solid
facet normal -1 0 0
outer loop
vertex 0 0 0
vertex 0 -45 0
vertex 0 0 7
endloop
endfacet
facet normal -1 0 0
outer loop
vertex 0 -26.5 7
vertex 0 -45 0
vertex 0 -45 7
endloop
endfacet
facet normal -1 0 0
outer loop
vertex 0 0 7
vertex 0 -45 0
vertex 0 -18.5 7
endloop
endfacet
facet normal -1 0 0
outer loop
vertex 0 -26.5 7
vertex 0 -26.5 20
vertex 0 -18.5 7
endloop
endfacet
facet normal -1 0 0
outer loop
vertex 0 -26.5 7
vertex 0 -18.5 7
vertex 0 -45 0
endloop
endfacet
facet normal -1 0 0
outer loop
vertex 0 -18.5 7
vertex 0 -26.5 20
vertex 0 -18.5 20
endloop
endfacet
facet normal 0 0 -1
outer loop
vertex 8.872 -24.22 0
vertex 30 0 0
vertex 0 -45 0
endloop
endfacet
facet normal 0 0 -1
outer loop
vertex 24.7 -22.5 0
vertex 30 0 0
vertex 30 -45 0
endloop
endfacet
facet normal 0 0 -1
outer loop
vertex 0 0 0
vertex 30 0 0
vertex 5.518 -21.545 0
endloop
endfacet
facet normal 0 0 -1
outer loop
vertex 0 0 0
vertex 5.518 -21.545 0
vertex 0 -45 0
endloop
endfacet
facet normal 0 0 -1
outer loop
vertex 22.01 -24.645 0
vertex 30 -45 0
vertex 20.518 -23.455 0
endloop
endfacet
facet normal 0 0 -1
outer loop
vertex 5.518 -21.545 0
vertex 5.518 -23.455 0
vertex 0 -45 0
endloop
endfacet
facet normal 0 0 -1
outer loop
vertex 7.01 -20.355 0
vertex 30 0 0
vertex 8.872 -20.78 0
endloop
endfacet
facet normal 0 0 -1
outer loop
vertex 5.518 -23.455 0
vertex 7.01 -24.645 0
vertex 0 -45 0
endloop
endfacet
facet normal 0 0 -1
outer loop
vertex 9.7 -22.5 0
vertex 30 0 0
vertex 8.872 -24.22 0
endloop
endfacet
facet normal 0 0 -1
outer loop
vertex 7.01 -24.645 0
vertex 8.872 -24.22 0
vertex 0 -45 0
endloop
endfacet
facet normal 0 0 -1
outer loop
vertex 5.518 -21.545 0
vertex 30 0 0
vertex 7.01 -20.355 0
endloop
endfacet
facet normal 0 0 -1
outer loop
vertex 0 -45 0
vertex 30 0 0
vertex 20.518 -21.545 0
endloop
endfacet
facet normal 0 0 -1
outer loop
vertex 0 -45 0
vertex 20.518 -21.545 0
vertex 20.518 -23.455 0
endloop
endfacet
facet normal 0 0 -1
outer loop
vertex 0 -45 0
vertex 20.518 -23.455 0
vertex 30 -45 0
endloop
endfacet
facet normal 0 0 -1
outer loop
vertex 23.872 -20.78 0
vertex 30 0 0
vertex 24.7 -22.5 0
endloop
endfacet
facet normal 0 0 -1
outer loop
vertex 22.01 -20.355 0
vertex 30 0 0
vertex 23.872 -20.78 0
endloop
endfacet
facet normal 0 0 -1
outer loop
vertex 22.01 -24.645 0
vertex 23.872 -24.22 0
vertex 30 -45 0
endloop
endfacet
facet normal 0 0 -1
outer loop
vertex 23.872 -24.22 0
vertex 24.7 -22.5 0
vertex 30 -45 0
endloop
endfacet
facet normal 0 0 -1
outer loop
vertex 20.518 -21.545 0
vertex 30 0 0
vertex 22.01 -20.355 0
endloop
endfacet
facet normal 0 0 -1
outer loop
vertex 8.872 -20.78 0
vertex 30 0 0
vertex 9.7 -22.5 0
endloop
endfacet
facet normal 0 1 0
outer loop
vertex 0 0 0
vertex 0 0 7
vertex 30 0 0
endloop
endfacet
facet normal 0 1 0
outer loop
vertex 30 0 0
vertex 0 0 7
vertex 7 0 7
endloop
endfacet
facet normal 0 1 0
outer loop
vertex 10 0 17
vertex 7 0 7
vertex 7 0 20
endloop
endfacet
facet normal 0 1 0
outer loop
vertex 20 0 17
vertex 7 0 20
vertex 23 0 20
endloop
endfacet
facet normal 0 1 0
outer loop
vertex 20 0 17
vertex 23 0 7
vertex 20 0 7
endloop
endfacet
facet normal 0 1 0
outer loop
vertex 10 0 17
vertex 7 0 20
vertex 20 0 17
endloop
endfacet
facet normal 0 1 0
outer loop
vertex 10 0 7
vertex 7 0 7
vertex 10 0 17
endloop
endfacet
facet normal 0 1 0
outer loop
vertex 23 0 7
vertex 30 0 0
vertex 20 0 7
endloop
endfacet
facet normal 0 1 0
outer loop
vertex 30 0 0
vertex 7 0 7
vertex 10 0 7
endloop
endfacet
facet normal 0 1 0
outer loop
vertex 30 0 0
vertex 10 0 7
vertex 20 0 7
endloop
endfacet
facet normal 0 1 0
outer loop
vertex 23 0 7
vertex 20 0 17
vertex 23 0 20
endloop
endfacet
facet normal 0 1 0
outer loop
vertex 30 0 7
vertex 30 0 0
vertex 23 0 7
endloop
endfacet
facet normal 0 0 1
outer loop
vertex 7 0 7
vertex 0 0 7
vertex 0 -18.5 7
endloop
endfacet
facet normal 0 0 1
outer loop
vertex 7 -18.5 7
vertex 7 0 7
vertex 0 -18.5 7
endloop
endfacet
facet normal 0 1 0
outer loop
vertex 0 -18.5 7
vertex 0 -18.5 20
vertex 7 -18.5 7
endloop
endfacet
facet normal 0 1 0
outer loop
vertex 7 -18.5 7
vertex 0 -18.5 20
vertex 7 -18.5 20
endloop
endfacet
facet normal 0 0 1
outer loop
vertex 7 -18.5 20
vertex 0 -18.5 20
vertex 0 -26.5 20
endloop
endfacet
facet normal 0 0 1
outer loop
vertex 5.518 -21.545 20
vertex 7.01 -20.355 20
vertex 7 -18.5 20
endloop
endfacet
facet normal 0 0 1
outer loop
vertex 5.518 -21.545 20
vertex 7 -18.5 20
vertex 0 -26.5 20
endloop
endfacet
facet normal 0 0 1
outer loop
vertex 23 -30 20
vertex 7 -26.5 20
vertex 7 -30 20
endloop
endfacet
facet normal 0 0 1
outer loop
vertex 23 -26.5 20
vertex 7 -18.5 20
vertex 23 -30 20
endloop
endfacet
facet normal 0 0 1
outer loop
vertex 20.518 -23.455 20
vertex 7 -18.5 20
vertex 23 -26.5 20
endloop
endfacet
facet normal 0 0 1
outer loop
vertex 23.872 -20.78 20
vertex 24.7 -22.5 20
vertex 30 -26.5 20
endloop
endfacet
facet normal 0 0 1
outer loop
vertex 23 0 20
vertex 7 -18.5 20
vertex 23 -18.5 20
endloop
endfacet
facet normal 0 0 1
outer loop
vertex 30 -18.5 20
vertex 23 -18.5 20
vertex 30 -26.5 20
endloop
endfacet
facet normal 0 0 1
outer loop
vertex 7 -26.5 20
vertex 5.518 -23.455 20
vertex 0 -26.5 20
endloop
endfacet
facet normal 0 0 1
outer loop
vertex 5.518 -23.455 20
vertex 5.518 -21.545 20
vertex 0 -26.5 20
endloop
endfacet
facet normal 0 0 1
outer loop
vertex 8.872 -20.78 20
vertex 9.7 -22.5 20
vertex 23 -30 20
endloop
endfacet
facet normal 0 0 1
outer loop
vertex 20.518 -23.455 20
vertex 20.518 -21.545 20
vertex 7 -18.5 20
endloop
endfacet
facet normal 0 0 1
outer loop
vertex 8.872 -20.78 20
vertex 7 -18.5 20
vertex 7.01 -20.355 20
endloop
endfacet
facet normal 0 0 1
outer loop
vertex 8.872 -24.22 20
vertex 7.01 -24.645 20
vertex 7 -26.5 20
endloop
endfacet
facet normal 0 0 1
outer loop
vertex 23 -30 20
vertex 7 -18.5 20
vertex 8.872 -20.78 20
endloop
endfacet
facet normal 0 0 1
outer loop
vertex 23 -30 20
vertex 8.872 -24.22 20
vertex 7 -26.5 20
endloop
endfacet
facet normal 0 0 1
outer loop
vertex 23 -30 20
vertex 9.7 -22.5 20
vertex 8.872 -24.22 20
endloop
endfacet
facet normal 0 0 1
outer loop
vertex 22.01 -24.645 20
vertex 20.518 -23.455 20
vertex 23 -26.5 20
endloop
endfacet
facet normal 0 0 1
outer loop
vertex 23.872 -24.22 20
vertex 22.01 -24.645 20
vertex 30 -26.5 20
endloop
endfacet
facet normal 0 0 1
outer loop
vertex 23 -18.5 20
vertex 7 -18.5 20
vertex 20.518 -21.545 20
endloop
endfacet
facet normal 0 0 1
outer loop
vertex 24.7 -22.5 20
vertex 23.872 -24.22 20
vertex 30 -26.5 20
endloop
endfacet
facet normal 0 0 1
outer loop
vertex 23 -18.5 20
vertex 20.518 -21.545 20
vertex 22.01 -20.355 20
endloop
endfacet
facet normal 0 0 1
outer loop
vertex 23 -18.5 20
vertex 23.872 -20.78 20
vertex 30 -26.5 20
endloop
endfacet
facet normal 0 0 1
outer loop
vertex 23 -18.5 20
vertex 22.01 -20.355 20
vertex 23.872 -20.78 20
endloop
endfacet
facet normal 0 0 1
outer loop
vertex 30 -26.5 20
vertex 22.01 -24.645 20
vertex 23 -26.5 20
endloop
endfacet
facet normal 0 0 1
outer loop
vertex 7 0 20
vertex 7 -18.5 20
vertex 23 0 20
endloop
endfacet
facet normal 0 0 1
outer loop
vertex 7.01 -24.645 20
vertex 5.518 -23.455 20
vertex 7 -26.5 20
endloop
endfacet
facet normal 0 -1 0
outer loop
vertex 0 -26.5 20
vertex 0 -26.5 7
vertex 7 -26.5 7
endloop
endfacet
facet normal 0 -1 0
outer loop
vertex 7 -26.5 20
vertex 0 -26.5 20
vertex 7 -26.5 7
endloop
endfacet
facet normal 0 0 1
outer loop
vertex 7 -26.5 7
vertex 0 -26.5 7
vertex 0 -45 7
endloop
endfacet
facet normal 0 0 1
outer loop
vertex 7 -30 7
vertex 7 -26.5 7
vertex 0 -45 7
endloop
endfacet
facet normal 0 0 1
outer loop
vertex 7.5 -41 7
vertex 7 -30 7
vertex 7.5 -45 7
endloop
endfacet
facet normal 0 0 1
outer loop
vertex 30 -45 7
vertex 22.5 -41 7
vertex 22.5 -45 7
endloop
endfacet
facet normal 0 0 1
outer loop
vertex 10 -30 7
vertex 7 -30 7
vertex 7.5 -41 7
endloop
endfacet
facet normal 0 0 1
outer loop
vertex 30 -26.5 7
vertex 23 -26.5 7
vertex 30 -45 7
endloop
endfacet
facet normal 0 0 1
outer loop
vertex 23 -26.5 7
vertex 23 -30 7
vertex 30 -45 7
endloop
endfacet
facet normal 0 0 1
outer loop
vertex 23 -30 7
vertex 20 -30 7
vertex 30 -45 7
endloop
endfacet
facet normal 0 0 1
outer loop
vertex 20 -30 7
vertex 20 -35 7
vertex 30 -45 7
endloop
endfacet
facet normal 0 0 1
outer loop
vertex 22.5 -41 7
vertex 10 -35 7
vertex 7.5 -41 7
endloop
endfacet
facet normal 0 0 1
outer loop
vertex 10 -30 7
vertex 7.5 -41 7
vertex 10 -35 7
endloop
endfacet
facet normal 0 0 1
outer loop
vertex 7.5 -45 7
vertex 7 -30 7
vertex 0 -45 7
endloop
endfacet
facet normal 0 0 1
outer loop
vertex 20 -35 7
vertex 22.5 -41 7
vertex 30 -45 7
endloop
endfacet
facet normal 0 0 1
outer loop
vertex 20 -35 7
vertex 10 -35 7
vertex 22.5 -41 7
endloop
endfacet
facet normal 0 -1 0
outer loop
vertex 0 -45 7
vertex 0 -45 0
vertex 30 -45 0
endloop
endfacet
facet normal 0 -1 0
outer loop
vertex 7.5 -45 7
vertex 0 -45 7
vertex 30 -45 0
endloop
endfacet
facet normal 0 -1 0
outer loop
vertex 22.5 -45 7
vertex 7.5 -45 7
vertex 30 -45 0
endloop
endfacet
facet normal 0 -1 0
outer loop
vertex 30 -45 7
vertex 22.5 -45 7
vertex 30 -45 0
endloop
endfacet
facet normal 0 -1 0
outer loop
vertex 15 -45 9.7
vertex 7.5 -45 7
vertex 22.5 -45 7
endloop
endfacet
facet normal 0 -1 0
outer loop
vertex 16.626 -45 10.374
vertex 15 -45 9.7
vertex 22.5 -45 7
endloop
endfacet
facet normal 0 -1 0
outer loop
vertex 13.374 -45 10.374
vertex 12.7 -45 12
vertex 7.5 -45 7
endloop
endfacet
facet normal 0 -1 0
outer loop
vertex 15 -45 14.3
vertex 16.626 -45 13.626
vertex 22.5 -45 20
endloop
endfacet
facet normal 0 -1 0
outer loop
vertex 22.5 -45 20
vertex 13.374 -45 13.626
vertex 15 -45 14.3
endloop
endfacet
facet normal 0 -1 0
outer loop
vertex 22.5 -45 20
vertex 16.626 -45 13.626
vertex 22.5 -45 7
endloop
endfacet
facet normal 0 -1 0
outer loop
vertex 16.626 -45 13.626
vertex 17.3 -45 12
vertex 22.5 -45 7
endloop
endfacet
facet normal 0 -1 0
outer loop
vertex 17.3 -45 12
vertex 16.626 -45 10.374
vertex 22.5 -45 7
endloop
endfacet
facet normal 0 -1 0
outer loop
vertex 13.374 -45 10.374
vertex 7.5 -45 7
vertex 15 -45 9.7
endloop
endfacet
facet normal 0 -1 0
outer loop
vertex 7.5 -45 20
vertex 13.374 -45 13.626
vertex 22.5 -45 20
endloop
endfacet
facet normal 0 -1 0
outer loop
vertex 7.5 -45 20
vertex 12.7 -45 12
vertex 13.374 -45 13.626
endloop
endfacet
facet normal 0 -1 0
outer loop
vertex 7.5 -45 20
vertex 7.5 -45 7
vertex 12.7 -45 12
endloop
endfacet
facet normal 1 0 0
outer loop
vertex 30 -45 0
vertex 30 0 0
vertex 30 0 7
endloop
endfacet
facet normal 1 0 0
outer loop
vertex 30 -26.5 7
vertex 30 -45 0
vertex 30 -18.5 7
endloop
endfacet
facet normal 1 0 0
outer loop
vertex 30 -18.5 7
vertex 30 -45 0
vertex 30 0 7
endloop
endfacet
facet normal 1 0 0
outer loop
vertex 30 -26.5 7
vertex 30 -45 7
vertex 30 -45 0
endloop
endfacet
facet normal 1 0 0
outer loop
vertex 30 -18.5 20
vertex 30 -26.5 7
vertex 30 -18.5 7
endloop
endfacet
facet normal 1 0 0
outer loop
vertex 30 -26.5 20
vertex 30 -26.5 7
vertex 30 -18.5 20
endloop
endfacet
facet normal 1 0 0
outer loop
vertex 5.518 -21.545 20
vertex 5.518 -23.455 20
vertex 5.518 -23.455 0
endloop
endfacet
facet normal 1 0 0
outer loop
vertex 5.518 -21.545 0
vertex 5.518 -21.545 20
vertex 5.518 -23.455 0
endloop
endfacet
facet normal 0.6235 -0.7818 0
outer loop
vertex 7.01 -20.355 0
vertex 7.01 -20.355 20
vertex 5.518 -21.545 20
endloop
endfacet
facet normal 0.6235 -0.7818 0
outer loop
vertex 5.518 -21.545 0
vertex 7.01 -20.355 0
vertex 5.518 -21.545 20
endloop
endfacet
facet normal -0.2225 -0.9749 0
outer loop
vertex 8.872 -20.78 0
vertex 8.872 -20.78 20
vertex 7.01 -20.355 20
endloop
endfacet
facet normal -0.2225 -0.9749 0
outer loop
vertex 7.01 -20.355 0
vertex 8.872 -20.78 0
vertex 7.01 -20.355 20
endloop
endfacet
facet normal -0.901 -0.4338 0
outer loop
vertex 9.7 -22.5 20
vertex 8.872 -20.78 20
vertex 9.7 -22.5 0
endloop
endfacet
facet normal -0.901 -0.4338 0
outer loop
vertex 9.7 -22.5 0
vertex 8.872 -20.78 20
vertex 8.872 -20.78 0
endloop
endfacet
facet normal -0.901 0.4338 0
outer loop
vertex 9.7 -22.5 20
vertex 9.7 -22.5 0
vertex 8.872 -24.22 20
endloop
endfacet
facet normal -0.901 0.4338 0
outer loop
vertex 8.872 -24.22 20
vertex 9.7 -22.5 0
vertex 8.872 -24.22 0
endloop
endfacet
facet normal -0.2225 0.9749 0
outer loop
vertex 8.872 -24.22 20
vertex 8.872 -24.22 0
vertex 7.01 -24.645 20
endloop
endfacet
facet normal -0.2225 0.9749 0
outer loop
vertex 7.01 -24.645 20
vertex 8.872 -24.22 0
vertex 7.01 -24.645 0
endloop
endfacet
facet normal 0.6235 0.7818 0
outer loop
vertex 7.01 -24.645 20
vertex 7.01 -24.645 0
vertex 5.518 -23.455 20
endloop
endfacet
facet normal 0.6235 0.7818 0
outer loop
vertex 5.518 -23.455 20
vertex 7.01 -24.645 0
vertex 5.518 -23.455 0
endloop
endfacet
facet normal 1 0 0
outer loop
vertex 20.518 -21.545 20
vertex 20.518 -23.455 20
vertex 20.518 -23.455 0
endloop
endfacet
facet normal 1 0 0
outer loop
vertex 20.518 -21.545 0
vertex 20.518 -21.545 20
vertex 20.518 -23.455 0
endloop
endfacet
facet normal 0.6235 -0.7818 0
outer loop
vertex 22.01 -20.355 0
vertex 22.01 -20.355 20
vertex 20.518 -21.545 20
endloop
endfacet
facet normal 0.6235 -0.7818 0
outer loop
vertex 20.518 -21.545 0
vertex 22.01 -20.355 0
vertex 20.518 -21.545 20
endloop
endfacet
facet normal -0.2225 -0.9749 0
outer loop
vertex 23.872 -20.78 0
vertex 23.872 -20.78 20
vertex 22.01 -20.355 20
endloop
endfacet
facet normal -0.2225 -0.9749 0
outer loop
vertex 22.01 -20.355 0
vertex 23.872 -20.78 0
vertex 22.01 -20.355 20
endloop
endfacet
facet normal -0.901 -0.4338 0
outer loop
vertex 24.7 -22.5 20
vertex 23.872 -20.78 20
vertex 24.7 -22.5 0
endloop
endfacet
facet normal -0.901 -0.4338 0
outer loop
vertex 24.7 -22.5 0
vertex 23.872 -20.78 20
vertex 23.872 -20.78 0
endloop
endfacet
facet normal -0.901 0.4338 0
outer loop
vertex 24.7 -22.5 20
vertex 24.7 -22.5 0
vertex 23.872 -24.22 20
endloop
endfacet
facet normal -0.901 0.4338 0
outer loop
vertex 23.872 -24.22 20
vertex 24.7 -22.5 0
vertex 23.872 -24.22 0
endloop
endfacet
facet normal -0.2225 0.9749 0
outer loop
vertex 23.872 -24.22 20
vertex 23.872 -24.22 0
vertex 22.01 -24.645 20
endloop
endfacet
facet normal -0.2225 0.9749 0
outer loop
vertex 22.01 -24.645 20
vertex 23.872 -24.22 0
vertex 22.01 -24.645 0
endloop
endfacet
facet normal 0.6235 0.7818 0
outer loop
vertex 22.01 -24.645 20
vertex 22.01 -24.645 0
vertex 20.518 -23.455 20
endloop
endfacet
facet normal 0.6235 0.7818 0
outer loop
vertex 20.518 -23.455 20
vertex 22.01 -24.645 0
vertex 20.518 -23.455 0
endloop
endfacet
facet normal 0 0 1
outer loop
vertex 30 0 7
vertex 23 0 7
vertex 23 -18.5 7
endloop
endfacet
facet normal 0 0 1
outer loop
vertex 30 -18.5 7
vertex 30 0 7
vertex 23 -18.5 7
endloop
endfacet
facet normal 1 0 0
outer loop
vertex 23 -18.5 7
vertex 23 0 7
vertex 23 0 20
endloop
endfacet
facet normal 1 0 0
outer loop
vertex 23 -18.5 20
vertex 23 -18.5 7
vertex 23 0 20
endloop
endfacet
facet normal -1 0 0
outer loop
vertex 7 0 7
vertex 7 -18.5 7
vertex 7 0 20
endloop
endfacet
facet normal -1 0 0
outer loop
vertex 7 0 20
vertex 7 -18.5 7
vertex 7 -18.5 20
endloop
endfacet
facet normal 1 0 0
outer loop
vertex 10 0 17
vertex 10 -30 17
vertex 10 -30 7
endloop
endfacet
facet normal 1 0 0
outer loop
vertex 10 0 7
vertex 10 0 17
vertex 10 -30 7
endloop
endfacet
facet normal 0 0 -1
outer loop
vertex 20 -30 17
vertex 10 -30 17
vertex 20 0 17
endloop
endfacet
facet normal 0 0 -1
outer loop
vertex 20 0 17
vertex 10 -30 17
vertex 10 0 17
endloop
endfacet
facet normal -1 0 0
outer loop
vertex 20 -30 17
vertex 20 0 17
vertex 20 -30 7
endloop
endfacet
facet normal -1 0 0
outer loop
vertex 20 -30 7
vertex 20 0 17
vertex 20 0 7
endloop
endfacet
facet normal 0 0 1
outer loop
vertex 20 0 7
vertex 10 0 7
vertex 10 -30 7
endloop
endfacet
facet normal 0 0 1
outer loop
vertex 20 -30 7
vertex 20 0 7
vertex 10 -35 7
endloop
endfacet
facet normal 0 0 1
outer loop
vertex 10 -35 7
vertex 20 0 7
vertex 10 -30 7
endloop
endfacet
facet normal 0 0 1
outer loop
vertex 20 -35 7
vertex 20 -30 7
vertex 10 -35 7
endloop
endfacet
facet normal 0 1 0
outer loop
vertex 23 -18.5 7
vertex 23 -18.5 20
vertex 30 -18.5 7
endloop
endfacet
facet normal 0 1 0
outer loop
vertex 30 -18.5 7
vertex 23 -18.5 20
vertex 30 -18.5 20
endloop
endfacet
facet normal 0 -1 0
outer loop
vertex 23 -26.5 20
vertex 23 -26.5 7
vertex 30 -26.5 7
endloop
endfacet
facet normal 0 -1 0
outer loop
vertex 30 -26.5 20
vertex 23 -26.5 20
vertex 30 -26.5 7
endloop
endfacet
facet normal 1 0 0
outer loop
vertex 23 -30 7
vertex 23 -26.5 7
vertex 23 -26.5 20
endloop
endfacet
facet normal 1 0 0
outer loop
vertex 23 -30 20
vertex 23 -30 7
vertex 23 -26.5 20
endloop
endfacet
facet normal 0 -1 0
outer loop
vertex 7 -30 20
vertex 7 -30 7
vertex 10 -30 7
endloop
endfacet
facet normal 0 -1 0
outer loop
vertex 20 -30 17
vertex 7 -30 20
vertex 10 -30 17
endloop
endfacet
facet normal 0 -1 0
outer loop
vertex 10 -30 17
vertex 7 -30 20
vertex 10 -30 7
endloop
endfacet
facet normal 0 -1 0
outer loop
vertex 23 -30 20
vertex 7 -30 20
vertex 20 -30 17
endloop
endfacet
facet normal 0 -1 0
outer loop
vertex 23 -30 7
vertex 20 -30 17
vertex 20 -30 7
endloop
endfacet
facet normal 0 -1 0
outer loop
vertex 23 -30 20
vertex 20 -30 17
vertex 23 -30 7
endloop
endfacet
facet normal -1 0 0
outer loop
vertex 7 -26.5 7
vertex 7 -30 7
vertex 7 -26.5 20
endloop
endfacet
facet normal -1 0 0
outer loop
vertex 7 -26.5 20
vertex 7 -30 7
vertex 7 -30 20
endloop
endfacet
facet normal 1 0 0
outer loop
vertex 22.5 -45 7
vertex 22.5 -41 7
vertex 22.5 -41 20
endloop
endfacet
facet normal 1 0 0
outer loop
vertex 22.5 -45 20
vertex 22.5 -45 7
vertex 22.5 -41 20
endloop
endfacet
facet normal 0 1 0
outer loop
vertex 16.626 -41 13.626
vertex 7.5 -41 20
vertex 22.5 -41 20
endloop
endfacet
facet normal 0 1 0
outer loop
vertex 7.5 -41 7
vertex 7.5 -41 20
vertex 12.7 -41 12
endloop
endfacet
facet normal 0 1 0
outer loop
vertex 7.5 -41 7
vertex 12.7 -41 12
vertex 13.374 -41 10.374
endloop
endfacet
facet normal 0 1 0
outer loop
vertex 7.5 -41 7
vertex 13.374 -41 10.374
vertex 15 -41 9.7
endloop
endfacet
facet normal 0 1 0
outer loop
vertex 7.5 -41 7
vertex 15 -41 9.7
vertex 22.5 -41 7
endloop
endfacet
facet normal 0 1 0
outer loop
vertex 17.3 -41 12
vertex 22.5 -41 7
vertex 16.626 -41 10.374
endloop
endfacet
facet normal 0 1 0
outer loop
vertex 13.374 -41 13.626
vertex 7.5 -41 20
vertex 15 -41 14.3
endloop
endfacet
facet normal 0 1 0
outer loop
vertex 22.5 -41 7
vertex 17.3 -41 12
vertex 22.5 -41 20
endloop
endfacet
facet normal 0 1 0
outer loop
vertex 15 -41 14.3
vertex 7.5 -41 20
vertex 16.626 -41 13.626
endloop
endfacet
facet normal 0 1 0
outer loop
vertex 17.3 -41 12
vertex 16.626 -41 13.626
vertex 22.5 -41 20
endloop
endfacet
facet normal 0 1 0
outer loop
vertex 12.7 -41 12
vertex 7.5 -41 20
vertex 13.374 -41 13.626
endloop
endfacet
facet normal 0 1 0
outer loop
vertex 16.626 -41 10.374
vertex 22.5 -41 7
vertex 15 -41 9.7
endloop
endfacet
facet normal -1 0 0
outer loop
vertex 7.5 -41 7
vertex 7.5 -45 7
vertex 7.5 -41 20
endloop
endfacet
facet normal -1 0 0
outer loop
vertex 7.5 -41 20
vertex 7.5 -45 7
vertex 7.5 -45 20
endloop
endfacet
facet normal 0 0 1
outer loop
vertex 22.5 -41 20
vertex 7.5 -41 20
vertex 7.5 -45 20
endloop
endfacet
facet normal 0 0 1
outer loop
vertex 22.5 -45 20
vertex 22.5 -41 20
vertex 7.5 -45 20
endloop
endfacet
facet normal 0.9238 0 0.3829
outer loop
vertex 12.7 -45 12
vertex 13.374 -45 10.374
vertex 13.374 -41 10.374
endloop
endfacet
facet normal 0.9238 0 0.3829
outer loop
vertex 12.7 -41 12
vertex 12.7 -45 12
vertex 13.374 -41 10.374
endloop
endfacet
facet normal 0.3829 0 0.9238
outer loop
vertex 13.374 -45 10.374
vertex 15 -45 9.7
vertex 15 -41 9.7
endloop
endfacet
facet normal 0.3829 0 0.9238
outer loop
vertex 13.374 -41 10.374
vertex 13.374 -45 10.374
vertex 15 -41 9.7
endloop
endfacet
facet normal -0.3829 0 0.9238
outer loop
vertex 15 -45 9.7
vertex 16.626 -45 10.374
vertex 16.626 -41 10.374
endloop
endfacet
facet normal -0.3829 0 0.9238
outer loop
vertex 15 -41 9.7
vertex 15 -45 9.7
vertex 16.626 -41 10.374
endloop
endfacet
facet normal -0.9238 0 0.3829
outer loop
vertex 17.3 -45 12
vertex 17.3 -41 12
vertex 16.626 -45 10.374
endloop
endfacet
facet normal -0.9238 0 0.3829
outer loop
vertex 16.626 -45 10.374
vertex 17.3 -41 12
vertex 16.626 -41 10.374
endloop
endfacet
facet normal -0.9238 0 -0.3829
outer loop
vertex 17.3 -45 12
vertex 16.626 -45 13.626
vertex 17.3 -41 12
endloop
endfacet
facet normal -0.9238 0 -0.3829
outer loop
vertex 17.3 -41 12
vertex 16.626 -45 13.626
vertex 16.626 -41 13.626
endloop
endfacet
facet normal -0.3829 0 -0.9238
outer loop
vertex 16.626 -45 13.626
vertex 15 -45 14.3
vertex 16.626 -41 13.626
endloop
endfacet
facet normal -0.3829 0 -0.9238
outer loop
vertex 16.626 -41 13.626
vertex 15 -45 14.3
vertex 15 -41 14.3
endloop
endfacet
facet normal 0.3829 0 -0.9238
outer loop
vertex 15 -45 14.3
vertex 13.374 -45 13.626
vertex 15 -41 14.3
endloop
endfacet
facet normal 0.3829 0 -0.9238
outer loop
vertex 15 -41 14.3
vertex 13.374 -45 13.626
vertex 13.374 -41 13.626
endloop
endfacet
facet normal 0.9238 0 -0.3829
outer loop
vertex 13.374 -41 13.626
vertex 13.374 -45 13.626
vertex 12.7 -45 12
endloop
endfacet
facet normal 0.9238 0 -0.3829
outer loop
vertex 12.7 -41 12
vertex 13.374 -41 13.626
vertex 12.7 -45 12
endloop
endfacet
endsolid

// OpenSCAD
dist_cent=45;

rotate([90,0,0])
difference(){
union(){
cube([30,7,dist_cent]);

//Caja
translate([30/2-16/2,7,0])
cube([16,13,dist_cent-15]);
translate([0,7,dist_cent/2-4])
cube([30,13,8]);

//Soporte tuerca
translate([30/2-15/2,7,dist_cent-4])
cube([15,13,4]);

}

union(){
//Pieza móvil
translate([30/2-10/2,7,-10])
cube([10,10,dist_cent]);

//agujeros tornillos
translate([15/2,50,dist_cent/2])
rotate([90,0,0])
cylinder(r=2.2,h=500);

translate([30-15/2,50,dist_cent/2])
rotate([90,0,0])
cylinder(r=2.2,h=500);


//Pasante vertical
translate([30/2,7+10/2,-50])
cylinder(r=2.3,h=1000);
}
}
